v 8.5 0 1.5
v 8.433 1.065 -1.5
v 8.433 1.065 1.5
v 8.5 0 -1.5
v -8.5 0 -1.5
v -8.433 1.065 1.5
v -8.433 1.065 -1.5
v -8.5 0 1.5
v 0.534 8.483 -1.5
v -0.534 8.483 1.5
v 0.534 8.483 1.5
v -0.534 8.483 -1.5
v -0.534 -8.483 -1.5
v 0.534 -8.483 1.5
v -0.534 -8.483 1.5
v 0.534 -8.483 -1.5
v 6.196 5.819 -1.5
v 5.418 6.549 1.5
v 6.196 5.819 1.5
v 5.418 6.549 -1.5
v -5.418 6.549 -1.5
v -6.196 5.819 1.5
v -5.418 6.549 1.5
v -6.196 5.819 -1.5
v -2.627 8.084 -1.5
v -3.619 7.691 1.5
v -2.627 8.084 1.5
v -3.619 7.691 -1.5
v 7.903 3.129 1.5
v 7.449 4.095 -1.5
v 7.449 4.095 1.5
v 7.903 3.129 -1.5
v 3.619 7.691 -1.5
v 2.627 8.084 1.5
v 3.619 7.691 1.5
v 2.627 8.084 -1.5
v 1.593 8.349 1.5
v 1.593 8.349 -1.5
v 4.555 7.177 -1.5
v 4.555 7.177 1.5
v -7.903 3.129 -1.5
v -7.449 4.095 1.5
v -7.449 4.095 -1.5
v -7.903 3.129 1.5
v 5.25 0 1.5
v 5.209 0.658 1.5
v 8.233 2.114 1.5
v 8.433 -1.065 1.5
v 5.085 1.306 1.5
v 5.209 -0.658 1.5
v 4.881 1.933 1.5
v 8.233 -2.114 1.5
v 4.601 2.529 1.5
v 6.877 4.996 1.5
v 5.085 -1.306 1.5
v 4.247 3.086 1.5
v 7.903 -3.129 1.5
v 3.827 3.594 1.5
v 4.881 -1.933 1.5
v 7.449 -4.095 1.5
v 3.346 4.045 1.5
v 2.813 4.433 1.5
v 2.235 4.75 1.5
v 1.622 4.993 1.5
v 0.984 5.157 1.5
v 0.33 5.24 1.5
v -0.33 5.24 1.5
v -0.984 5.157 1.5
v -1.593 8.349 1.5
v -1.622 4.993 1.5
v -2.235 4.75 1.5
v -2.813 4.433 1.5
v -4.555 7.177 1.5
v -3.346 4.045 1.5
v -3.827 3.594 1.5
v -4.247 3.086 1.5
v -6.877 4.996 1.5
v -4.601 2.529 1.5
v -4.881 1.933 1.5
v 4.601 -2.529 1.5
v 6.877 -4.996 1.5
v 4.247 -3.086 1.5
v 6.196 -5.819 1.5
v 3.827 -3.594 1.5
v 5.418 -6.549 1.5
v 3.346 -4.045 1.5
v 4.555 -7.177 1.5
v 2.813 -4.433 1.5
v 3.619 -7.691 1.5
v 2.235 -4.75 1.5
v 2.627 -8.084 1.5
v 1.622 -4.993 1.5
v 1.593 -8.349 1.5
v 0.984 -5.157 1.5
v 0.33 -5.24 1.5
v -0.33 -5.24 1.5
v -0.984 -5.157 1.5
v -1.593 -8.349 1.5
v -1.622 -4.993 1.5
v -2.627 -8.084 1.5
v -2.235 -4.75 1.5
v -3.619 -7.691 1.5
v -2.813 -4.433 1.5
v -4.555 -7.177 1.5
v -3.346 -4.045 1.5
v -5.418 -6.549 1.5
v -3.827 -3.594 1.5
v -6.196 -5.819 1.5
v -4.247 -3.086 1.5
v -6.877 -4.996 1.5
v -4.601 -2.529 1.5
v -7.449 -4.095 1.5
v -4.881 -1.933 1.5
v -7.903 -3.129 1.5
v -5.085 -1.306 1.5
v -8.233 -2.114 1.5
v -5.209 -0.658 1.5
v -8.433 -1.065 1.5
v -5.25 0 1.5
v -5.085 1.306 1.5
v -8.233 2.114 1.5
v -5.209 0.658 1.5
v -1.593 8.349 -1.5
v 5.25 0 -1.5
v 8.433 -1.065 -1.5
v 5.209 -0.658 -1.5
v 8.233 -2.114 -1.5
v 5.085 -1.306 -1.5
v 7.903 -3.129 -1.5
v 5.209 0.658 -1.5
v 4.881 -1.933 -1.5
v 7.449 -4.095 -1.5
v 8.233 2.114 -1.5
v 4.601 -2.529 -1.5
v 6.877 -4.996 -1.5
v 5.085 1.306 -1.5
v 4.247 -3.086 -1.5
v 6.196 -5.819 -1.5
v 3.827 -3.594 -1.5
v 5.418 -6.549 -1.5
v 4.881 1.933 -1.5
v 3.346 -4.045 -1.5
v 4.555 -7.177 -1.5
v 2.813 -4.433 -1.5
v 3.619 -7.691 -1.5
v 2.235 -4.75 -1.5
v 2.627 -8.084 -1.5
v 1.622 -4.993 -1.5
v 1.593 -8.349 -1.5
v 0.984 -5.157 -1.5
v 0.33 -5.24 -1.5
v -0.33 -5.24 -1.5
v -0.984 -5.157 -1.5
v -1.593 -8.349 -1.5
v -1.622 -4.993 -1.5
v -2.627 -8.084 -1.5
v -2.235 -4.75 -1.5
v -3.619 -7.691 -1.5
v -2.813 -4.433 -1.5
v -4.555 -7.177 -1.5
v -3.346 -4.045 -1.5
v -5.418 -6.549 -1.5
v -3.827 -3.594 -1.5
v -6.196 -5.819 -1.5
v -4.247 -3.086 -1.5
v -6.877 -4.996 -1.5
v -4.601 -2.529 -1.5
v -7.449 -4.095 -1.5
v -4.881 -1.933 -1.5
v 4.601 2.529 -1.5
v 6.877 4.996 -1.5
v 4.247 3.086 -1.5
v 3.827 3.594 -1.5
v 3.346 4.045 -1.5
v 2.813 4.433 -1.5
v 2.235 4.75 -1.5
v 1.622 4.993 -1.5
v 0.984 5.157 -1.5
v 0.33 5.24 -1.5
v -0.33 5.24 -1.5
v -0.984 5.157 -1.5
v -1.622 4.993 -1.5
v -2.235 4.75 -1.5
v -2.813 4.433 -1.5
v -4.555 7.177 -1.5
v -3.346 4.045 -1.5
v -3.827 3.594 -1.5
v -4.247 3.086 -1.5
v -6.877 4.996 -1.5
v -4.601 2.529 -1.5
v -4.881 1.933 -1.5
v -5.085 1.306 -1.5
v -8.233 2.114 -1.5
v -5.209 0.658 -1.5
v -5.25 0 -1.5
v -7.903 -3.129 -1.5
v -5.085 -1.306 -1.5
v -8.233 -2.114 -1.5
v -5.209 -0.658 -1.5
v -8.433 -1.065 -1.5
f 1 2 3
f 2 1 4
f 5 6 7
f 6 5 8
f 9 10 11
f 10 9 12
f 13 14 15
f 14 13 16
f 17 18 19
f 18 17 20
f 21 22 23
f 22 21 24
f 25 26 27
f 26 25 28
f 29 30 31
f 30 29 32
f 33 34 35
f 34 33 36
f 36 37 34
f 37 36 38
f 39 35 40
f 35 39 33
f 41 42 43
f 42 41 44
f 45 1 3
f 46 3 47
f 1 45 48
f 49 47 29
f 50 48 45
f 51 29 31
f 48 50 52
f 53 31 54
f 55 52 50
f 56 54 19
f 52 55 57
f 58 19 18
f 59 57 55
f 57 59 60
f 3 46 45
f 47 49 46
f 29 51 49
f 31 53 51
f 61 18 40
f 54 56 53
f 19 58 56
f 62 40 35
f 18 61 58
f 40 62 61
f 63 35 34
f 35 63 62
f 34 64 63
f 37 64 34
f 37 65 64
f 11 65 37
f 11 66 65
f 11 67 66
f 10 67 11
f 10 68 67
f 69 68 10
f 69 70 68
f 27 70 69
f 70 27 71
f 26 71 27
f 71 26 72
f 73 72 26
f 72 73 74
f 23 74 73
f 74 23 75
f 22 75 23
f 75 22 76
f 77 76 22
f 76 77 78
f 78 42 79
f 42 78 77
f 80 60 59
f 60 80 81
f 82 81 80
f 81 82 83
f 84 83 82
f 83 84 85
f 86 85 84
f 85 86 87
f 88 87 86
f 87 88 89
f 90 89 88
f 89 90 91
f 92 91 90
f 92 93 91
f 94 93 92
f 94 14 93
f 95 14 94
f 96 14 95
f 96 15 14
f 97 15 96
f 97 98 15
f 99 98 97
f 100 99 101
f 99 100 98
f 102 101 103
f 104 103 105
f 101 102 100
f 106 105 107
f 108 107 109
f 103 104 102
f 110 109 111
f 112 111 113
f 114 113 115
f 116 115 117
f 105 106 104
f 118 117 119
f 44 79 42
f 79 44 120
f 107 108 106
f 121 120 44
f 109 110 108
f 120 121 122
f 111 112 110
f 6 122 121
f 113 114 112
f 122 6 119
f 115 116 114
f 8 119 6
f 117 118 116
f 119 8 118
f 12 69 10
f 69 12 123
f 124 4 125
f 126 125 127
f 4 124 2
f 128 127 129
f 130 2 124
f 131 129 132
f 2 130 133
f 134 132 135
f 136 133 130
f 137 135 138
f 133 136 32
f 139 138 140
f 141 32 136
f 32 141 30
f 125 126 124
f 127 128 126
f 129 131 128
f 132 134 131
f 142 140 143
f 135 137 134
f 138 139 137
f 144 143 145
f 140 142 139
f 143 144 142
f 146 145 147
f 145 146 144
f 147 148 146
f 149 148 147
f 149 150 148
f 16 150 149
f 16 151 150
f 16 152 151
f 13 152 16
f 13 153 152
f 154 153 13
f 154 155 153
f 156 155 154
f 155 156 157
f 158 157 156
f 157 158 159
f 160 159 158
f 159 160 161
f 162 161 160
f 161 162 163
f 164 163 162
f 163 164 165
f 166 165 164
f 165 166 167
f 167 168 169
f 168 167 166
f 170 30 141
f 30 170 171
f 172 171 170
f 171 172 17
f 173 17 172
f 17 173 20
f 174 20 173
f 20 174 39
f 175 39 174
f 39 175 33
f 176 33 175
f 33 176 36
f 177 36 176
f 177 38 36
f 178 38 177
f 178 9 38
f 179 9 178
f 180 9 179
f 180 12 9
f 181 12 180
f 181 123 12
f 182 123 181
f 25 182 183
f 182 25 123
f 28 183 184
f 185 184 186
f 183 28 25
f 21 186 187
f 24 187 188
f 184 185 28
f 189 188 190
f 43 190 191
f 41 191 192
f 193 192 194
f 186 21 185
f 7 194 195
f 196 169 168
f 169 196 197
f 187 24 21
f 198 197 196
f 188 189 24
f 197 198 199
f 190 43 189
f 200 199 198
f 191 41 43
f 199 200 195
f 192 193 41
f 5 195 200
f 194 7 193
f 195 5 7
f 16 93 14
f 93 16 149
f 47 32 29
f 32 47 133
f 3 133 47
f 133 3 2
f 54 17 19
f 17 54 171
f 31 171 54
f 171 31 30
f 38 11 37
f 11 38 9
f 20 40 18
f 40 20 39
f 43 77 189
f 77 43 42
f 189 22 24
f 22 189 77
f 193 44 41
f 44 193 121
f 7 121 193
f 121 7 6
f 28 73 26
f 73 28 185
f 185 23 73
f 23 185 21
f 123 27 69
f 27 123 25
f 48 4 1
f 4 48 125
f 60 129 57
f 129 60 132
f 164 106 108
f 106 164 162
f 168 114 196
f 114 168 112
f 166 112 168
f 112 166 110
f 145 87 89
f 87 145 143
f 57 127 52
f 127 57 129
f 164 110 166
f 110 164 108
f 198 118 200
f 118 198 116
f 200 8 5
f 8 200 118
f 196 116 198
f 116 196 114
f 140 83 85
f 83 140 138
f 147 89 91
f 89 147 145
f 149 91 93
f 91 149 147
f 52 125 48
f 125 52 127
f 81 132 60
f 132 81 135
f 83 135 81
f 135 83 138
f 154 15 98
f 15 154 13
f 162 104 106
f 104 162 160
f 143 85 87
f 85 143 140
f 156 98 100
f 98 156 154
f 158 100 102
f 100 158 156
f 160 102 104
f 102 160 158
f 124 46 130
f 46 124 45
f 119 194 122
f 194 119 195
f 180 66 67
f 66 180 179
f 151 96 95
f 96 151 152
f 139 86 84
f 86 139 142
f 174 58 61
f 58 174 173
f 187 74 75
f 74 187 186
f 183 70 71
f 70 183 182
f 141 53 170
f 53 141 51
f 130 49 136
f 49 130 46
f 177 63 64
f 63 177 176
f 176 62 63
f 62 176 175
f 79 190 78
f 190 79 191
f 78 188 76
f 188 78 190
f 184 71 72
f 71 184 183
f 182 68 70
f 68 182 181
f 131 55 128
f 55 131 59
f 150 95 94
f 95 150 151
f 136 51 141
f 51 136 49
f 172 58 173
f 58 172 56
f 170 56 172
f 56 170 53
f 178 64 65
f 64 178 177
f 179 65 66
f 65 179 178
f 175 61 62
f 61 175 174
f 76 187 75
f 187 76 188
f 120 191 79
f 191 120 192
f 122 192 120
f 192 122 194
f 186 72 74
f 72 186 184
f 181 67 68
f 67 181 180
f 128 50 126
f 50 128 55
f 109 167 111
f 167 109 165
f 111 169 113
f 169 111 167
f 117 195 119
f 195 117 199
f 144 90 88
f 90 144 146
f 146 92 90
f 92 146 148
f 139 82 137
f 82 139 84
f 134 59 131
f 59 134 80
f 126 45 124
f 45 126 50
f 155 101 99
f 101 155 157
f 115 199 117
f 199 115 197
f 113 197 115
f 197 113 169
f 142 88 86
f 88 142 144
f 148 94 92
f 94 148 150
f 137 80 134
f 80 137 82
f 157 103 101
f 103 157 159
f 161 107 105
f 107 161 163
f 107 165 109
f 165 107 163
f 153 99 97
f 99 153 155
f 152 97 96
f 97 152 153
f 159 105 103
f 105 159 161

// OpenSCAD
$fn = 50;


difference() {
	union() {
		translate(v = [0, 0, -1.5000000000]) {
			cylinder(h = 3, r = 8.5000000000);
		}
	}
	union() {
		translate(v = [0, 0, -100.0000000000]) {
			cylinder(h = 200, r = 5.2500000000);
		}
	}
}
